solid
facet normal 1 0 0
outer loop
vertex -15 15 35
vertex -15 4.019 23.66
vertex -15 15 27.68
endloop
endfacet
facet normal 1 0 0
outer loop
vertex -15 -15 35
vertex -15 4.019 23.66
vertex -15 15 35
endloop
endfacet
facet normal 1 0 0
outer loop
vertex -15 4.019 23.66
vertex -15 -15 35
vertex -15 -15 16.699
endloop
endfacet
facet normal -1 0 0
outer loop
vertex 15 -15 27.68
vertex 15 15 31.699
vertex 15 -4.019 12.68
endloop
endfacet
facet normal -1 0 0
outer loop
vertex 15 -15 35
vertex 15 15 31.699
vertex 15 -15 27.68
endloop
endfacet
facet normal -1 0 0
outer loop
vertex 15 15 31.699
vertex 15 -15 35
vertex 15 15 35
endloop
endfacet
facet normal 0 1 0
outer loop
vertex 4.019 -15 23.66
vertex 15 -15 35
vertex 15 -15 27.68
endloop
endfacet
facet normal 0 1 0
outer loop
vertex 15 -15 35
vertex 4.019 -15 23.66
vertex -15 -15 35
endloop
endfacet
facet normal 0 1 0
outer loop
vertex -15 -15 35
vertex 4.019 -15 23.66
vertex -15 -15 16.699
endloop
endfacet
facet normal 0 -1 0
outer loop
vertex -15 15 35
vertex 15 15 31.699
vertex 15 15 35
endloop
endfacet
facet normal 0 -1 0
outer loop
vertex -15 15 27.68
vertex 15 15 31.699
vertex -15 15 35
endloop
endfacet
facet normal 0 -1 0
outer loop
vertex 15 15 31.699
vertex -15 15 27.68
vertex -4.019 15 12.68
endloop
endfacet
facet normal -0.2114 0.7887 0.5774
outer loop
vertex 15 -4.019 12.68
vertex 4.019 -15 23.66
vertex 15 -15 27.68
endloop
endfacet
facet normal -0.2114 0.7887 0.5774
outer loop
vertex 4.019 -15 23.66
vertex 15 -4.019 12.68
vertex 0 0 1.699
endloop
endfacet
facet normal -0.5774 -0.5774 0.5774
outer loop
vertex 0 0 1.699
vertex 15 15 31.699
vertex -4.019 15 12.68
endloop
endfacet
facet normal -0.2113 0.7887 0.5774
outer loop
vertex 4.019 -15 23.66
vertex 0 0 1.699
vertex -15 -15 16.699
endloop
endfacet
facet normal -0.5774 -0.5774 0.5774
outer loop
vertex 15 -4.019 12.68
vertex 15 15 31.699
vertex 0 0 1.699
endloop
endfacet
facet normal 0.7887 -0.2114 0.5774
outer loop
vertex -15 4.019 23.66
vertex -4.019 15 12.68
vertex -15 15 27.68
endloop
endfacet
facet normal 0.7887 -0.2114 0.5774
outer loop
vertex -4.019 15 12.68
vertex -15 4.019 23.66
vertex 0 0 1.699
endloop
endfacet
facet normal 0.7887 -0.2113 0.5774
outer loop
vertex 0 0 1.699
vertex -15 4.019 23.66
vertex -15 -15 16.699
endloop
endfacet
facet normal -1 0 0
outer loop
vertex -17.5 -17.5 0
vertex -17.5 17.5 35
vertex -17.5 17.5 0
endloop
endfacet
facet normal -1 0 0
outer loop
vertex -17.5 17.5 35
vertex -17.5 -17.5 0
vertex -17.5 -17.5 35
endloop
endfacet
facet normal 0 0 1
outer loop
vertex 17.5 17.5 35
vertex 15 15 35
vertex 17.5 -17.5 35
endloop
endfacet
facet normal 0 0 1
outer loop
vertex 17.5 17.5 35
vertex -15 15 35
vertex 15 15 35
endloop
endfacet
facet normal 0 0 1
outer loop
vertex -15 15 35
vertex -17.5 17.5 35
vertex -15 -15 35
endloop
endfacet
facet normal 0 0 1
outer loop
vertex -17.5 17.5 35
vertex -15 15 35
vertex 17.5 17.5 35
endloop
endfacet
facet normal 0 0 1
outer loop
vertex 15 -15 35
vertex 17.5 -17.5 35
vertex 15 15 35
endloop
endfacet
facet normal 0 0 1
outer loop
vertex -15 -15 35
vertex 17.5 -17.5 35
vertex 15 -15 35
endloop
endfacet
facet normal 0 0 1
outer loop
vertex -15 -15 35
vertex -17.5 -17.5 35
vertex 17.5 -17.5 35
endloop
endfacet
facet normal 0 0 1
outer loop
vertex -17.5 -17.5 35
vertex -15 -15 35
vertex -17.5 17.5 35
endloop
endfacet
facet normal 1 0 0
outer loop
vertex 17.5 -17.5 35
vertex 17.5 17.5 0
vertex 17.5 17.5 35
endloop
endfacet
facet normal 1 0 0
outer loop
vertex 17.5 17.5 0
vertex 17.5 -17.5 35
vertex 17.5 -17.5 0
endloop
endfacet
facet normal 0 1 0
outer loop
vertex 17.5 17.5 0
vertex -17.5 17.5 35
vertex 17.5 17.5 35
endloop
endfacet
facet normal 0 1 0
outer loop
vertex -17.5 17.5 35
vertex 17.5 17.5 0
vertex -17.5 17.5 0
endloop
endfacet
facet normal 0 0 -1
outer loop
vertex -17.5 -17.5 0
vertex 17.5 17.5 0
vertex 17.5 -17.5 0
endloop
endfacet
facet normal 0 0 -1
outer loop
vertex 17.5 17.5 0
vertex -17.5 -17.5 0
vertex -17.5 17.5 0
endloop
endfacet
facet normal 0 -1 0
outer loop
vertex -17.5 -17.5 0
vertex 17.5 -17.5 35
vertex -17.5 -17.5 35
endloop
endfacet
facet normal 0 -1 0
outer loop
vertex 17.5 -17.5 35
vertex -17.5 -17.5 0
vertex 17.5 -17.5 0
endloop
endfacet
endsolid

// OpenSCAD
difference(){
    translate([0,0,17.5])
    cube([35,35,35],center=true);
    translate([0,0,45])
    //This builds the "obelisk" that will carve out the cube
    intersection(){
        rotate(90-atan(1/sqrt(2)),[1,-1,0])
        cube(50,center=true);
        cube([30,30,100],center=true);
    }
}
